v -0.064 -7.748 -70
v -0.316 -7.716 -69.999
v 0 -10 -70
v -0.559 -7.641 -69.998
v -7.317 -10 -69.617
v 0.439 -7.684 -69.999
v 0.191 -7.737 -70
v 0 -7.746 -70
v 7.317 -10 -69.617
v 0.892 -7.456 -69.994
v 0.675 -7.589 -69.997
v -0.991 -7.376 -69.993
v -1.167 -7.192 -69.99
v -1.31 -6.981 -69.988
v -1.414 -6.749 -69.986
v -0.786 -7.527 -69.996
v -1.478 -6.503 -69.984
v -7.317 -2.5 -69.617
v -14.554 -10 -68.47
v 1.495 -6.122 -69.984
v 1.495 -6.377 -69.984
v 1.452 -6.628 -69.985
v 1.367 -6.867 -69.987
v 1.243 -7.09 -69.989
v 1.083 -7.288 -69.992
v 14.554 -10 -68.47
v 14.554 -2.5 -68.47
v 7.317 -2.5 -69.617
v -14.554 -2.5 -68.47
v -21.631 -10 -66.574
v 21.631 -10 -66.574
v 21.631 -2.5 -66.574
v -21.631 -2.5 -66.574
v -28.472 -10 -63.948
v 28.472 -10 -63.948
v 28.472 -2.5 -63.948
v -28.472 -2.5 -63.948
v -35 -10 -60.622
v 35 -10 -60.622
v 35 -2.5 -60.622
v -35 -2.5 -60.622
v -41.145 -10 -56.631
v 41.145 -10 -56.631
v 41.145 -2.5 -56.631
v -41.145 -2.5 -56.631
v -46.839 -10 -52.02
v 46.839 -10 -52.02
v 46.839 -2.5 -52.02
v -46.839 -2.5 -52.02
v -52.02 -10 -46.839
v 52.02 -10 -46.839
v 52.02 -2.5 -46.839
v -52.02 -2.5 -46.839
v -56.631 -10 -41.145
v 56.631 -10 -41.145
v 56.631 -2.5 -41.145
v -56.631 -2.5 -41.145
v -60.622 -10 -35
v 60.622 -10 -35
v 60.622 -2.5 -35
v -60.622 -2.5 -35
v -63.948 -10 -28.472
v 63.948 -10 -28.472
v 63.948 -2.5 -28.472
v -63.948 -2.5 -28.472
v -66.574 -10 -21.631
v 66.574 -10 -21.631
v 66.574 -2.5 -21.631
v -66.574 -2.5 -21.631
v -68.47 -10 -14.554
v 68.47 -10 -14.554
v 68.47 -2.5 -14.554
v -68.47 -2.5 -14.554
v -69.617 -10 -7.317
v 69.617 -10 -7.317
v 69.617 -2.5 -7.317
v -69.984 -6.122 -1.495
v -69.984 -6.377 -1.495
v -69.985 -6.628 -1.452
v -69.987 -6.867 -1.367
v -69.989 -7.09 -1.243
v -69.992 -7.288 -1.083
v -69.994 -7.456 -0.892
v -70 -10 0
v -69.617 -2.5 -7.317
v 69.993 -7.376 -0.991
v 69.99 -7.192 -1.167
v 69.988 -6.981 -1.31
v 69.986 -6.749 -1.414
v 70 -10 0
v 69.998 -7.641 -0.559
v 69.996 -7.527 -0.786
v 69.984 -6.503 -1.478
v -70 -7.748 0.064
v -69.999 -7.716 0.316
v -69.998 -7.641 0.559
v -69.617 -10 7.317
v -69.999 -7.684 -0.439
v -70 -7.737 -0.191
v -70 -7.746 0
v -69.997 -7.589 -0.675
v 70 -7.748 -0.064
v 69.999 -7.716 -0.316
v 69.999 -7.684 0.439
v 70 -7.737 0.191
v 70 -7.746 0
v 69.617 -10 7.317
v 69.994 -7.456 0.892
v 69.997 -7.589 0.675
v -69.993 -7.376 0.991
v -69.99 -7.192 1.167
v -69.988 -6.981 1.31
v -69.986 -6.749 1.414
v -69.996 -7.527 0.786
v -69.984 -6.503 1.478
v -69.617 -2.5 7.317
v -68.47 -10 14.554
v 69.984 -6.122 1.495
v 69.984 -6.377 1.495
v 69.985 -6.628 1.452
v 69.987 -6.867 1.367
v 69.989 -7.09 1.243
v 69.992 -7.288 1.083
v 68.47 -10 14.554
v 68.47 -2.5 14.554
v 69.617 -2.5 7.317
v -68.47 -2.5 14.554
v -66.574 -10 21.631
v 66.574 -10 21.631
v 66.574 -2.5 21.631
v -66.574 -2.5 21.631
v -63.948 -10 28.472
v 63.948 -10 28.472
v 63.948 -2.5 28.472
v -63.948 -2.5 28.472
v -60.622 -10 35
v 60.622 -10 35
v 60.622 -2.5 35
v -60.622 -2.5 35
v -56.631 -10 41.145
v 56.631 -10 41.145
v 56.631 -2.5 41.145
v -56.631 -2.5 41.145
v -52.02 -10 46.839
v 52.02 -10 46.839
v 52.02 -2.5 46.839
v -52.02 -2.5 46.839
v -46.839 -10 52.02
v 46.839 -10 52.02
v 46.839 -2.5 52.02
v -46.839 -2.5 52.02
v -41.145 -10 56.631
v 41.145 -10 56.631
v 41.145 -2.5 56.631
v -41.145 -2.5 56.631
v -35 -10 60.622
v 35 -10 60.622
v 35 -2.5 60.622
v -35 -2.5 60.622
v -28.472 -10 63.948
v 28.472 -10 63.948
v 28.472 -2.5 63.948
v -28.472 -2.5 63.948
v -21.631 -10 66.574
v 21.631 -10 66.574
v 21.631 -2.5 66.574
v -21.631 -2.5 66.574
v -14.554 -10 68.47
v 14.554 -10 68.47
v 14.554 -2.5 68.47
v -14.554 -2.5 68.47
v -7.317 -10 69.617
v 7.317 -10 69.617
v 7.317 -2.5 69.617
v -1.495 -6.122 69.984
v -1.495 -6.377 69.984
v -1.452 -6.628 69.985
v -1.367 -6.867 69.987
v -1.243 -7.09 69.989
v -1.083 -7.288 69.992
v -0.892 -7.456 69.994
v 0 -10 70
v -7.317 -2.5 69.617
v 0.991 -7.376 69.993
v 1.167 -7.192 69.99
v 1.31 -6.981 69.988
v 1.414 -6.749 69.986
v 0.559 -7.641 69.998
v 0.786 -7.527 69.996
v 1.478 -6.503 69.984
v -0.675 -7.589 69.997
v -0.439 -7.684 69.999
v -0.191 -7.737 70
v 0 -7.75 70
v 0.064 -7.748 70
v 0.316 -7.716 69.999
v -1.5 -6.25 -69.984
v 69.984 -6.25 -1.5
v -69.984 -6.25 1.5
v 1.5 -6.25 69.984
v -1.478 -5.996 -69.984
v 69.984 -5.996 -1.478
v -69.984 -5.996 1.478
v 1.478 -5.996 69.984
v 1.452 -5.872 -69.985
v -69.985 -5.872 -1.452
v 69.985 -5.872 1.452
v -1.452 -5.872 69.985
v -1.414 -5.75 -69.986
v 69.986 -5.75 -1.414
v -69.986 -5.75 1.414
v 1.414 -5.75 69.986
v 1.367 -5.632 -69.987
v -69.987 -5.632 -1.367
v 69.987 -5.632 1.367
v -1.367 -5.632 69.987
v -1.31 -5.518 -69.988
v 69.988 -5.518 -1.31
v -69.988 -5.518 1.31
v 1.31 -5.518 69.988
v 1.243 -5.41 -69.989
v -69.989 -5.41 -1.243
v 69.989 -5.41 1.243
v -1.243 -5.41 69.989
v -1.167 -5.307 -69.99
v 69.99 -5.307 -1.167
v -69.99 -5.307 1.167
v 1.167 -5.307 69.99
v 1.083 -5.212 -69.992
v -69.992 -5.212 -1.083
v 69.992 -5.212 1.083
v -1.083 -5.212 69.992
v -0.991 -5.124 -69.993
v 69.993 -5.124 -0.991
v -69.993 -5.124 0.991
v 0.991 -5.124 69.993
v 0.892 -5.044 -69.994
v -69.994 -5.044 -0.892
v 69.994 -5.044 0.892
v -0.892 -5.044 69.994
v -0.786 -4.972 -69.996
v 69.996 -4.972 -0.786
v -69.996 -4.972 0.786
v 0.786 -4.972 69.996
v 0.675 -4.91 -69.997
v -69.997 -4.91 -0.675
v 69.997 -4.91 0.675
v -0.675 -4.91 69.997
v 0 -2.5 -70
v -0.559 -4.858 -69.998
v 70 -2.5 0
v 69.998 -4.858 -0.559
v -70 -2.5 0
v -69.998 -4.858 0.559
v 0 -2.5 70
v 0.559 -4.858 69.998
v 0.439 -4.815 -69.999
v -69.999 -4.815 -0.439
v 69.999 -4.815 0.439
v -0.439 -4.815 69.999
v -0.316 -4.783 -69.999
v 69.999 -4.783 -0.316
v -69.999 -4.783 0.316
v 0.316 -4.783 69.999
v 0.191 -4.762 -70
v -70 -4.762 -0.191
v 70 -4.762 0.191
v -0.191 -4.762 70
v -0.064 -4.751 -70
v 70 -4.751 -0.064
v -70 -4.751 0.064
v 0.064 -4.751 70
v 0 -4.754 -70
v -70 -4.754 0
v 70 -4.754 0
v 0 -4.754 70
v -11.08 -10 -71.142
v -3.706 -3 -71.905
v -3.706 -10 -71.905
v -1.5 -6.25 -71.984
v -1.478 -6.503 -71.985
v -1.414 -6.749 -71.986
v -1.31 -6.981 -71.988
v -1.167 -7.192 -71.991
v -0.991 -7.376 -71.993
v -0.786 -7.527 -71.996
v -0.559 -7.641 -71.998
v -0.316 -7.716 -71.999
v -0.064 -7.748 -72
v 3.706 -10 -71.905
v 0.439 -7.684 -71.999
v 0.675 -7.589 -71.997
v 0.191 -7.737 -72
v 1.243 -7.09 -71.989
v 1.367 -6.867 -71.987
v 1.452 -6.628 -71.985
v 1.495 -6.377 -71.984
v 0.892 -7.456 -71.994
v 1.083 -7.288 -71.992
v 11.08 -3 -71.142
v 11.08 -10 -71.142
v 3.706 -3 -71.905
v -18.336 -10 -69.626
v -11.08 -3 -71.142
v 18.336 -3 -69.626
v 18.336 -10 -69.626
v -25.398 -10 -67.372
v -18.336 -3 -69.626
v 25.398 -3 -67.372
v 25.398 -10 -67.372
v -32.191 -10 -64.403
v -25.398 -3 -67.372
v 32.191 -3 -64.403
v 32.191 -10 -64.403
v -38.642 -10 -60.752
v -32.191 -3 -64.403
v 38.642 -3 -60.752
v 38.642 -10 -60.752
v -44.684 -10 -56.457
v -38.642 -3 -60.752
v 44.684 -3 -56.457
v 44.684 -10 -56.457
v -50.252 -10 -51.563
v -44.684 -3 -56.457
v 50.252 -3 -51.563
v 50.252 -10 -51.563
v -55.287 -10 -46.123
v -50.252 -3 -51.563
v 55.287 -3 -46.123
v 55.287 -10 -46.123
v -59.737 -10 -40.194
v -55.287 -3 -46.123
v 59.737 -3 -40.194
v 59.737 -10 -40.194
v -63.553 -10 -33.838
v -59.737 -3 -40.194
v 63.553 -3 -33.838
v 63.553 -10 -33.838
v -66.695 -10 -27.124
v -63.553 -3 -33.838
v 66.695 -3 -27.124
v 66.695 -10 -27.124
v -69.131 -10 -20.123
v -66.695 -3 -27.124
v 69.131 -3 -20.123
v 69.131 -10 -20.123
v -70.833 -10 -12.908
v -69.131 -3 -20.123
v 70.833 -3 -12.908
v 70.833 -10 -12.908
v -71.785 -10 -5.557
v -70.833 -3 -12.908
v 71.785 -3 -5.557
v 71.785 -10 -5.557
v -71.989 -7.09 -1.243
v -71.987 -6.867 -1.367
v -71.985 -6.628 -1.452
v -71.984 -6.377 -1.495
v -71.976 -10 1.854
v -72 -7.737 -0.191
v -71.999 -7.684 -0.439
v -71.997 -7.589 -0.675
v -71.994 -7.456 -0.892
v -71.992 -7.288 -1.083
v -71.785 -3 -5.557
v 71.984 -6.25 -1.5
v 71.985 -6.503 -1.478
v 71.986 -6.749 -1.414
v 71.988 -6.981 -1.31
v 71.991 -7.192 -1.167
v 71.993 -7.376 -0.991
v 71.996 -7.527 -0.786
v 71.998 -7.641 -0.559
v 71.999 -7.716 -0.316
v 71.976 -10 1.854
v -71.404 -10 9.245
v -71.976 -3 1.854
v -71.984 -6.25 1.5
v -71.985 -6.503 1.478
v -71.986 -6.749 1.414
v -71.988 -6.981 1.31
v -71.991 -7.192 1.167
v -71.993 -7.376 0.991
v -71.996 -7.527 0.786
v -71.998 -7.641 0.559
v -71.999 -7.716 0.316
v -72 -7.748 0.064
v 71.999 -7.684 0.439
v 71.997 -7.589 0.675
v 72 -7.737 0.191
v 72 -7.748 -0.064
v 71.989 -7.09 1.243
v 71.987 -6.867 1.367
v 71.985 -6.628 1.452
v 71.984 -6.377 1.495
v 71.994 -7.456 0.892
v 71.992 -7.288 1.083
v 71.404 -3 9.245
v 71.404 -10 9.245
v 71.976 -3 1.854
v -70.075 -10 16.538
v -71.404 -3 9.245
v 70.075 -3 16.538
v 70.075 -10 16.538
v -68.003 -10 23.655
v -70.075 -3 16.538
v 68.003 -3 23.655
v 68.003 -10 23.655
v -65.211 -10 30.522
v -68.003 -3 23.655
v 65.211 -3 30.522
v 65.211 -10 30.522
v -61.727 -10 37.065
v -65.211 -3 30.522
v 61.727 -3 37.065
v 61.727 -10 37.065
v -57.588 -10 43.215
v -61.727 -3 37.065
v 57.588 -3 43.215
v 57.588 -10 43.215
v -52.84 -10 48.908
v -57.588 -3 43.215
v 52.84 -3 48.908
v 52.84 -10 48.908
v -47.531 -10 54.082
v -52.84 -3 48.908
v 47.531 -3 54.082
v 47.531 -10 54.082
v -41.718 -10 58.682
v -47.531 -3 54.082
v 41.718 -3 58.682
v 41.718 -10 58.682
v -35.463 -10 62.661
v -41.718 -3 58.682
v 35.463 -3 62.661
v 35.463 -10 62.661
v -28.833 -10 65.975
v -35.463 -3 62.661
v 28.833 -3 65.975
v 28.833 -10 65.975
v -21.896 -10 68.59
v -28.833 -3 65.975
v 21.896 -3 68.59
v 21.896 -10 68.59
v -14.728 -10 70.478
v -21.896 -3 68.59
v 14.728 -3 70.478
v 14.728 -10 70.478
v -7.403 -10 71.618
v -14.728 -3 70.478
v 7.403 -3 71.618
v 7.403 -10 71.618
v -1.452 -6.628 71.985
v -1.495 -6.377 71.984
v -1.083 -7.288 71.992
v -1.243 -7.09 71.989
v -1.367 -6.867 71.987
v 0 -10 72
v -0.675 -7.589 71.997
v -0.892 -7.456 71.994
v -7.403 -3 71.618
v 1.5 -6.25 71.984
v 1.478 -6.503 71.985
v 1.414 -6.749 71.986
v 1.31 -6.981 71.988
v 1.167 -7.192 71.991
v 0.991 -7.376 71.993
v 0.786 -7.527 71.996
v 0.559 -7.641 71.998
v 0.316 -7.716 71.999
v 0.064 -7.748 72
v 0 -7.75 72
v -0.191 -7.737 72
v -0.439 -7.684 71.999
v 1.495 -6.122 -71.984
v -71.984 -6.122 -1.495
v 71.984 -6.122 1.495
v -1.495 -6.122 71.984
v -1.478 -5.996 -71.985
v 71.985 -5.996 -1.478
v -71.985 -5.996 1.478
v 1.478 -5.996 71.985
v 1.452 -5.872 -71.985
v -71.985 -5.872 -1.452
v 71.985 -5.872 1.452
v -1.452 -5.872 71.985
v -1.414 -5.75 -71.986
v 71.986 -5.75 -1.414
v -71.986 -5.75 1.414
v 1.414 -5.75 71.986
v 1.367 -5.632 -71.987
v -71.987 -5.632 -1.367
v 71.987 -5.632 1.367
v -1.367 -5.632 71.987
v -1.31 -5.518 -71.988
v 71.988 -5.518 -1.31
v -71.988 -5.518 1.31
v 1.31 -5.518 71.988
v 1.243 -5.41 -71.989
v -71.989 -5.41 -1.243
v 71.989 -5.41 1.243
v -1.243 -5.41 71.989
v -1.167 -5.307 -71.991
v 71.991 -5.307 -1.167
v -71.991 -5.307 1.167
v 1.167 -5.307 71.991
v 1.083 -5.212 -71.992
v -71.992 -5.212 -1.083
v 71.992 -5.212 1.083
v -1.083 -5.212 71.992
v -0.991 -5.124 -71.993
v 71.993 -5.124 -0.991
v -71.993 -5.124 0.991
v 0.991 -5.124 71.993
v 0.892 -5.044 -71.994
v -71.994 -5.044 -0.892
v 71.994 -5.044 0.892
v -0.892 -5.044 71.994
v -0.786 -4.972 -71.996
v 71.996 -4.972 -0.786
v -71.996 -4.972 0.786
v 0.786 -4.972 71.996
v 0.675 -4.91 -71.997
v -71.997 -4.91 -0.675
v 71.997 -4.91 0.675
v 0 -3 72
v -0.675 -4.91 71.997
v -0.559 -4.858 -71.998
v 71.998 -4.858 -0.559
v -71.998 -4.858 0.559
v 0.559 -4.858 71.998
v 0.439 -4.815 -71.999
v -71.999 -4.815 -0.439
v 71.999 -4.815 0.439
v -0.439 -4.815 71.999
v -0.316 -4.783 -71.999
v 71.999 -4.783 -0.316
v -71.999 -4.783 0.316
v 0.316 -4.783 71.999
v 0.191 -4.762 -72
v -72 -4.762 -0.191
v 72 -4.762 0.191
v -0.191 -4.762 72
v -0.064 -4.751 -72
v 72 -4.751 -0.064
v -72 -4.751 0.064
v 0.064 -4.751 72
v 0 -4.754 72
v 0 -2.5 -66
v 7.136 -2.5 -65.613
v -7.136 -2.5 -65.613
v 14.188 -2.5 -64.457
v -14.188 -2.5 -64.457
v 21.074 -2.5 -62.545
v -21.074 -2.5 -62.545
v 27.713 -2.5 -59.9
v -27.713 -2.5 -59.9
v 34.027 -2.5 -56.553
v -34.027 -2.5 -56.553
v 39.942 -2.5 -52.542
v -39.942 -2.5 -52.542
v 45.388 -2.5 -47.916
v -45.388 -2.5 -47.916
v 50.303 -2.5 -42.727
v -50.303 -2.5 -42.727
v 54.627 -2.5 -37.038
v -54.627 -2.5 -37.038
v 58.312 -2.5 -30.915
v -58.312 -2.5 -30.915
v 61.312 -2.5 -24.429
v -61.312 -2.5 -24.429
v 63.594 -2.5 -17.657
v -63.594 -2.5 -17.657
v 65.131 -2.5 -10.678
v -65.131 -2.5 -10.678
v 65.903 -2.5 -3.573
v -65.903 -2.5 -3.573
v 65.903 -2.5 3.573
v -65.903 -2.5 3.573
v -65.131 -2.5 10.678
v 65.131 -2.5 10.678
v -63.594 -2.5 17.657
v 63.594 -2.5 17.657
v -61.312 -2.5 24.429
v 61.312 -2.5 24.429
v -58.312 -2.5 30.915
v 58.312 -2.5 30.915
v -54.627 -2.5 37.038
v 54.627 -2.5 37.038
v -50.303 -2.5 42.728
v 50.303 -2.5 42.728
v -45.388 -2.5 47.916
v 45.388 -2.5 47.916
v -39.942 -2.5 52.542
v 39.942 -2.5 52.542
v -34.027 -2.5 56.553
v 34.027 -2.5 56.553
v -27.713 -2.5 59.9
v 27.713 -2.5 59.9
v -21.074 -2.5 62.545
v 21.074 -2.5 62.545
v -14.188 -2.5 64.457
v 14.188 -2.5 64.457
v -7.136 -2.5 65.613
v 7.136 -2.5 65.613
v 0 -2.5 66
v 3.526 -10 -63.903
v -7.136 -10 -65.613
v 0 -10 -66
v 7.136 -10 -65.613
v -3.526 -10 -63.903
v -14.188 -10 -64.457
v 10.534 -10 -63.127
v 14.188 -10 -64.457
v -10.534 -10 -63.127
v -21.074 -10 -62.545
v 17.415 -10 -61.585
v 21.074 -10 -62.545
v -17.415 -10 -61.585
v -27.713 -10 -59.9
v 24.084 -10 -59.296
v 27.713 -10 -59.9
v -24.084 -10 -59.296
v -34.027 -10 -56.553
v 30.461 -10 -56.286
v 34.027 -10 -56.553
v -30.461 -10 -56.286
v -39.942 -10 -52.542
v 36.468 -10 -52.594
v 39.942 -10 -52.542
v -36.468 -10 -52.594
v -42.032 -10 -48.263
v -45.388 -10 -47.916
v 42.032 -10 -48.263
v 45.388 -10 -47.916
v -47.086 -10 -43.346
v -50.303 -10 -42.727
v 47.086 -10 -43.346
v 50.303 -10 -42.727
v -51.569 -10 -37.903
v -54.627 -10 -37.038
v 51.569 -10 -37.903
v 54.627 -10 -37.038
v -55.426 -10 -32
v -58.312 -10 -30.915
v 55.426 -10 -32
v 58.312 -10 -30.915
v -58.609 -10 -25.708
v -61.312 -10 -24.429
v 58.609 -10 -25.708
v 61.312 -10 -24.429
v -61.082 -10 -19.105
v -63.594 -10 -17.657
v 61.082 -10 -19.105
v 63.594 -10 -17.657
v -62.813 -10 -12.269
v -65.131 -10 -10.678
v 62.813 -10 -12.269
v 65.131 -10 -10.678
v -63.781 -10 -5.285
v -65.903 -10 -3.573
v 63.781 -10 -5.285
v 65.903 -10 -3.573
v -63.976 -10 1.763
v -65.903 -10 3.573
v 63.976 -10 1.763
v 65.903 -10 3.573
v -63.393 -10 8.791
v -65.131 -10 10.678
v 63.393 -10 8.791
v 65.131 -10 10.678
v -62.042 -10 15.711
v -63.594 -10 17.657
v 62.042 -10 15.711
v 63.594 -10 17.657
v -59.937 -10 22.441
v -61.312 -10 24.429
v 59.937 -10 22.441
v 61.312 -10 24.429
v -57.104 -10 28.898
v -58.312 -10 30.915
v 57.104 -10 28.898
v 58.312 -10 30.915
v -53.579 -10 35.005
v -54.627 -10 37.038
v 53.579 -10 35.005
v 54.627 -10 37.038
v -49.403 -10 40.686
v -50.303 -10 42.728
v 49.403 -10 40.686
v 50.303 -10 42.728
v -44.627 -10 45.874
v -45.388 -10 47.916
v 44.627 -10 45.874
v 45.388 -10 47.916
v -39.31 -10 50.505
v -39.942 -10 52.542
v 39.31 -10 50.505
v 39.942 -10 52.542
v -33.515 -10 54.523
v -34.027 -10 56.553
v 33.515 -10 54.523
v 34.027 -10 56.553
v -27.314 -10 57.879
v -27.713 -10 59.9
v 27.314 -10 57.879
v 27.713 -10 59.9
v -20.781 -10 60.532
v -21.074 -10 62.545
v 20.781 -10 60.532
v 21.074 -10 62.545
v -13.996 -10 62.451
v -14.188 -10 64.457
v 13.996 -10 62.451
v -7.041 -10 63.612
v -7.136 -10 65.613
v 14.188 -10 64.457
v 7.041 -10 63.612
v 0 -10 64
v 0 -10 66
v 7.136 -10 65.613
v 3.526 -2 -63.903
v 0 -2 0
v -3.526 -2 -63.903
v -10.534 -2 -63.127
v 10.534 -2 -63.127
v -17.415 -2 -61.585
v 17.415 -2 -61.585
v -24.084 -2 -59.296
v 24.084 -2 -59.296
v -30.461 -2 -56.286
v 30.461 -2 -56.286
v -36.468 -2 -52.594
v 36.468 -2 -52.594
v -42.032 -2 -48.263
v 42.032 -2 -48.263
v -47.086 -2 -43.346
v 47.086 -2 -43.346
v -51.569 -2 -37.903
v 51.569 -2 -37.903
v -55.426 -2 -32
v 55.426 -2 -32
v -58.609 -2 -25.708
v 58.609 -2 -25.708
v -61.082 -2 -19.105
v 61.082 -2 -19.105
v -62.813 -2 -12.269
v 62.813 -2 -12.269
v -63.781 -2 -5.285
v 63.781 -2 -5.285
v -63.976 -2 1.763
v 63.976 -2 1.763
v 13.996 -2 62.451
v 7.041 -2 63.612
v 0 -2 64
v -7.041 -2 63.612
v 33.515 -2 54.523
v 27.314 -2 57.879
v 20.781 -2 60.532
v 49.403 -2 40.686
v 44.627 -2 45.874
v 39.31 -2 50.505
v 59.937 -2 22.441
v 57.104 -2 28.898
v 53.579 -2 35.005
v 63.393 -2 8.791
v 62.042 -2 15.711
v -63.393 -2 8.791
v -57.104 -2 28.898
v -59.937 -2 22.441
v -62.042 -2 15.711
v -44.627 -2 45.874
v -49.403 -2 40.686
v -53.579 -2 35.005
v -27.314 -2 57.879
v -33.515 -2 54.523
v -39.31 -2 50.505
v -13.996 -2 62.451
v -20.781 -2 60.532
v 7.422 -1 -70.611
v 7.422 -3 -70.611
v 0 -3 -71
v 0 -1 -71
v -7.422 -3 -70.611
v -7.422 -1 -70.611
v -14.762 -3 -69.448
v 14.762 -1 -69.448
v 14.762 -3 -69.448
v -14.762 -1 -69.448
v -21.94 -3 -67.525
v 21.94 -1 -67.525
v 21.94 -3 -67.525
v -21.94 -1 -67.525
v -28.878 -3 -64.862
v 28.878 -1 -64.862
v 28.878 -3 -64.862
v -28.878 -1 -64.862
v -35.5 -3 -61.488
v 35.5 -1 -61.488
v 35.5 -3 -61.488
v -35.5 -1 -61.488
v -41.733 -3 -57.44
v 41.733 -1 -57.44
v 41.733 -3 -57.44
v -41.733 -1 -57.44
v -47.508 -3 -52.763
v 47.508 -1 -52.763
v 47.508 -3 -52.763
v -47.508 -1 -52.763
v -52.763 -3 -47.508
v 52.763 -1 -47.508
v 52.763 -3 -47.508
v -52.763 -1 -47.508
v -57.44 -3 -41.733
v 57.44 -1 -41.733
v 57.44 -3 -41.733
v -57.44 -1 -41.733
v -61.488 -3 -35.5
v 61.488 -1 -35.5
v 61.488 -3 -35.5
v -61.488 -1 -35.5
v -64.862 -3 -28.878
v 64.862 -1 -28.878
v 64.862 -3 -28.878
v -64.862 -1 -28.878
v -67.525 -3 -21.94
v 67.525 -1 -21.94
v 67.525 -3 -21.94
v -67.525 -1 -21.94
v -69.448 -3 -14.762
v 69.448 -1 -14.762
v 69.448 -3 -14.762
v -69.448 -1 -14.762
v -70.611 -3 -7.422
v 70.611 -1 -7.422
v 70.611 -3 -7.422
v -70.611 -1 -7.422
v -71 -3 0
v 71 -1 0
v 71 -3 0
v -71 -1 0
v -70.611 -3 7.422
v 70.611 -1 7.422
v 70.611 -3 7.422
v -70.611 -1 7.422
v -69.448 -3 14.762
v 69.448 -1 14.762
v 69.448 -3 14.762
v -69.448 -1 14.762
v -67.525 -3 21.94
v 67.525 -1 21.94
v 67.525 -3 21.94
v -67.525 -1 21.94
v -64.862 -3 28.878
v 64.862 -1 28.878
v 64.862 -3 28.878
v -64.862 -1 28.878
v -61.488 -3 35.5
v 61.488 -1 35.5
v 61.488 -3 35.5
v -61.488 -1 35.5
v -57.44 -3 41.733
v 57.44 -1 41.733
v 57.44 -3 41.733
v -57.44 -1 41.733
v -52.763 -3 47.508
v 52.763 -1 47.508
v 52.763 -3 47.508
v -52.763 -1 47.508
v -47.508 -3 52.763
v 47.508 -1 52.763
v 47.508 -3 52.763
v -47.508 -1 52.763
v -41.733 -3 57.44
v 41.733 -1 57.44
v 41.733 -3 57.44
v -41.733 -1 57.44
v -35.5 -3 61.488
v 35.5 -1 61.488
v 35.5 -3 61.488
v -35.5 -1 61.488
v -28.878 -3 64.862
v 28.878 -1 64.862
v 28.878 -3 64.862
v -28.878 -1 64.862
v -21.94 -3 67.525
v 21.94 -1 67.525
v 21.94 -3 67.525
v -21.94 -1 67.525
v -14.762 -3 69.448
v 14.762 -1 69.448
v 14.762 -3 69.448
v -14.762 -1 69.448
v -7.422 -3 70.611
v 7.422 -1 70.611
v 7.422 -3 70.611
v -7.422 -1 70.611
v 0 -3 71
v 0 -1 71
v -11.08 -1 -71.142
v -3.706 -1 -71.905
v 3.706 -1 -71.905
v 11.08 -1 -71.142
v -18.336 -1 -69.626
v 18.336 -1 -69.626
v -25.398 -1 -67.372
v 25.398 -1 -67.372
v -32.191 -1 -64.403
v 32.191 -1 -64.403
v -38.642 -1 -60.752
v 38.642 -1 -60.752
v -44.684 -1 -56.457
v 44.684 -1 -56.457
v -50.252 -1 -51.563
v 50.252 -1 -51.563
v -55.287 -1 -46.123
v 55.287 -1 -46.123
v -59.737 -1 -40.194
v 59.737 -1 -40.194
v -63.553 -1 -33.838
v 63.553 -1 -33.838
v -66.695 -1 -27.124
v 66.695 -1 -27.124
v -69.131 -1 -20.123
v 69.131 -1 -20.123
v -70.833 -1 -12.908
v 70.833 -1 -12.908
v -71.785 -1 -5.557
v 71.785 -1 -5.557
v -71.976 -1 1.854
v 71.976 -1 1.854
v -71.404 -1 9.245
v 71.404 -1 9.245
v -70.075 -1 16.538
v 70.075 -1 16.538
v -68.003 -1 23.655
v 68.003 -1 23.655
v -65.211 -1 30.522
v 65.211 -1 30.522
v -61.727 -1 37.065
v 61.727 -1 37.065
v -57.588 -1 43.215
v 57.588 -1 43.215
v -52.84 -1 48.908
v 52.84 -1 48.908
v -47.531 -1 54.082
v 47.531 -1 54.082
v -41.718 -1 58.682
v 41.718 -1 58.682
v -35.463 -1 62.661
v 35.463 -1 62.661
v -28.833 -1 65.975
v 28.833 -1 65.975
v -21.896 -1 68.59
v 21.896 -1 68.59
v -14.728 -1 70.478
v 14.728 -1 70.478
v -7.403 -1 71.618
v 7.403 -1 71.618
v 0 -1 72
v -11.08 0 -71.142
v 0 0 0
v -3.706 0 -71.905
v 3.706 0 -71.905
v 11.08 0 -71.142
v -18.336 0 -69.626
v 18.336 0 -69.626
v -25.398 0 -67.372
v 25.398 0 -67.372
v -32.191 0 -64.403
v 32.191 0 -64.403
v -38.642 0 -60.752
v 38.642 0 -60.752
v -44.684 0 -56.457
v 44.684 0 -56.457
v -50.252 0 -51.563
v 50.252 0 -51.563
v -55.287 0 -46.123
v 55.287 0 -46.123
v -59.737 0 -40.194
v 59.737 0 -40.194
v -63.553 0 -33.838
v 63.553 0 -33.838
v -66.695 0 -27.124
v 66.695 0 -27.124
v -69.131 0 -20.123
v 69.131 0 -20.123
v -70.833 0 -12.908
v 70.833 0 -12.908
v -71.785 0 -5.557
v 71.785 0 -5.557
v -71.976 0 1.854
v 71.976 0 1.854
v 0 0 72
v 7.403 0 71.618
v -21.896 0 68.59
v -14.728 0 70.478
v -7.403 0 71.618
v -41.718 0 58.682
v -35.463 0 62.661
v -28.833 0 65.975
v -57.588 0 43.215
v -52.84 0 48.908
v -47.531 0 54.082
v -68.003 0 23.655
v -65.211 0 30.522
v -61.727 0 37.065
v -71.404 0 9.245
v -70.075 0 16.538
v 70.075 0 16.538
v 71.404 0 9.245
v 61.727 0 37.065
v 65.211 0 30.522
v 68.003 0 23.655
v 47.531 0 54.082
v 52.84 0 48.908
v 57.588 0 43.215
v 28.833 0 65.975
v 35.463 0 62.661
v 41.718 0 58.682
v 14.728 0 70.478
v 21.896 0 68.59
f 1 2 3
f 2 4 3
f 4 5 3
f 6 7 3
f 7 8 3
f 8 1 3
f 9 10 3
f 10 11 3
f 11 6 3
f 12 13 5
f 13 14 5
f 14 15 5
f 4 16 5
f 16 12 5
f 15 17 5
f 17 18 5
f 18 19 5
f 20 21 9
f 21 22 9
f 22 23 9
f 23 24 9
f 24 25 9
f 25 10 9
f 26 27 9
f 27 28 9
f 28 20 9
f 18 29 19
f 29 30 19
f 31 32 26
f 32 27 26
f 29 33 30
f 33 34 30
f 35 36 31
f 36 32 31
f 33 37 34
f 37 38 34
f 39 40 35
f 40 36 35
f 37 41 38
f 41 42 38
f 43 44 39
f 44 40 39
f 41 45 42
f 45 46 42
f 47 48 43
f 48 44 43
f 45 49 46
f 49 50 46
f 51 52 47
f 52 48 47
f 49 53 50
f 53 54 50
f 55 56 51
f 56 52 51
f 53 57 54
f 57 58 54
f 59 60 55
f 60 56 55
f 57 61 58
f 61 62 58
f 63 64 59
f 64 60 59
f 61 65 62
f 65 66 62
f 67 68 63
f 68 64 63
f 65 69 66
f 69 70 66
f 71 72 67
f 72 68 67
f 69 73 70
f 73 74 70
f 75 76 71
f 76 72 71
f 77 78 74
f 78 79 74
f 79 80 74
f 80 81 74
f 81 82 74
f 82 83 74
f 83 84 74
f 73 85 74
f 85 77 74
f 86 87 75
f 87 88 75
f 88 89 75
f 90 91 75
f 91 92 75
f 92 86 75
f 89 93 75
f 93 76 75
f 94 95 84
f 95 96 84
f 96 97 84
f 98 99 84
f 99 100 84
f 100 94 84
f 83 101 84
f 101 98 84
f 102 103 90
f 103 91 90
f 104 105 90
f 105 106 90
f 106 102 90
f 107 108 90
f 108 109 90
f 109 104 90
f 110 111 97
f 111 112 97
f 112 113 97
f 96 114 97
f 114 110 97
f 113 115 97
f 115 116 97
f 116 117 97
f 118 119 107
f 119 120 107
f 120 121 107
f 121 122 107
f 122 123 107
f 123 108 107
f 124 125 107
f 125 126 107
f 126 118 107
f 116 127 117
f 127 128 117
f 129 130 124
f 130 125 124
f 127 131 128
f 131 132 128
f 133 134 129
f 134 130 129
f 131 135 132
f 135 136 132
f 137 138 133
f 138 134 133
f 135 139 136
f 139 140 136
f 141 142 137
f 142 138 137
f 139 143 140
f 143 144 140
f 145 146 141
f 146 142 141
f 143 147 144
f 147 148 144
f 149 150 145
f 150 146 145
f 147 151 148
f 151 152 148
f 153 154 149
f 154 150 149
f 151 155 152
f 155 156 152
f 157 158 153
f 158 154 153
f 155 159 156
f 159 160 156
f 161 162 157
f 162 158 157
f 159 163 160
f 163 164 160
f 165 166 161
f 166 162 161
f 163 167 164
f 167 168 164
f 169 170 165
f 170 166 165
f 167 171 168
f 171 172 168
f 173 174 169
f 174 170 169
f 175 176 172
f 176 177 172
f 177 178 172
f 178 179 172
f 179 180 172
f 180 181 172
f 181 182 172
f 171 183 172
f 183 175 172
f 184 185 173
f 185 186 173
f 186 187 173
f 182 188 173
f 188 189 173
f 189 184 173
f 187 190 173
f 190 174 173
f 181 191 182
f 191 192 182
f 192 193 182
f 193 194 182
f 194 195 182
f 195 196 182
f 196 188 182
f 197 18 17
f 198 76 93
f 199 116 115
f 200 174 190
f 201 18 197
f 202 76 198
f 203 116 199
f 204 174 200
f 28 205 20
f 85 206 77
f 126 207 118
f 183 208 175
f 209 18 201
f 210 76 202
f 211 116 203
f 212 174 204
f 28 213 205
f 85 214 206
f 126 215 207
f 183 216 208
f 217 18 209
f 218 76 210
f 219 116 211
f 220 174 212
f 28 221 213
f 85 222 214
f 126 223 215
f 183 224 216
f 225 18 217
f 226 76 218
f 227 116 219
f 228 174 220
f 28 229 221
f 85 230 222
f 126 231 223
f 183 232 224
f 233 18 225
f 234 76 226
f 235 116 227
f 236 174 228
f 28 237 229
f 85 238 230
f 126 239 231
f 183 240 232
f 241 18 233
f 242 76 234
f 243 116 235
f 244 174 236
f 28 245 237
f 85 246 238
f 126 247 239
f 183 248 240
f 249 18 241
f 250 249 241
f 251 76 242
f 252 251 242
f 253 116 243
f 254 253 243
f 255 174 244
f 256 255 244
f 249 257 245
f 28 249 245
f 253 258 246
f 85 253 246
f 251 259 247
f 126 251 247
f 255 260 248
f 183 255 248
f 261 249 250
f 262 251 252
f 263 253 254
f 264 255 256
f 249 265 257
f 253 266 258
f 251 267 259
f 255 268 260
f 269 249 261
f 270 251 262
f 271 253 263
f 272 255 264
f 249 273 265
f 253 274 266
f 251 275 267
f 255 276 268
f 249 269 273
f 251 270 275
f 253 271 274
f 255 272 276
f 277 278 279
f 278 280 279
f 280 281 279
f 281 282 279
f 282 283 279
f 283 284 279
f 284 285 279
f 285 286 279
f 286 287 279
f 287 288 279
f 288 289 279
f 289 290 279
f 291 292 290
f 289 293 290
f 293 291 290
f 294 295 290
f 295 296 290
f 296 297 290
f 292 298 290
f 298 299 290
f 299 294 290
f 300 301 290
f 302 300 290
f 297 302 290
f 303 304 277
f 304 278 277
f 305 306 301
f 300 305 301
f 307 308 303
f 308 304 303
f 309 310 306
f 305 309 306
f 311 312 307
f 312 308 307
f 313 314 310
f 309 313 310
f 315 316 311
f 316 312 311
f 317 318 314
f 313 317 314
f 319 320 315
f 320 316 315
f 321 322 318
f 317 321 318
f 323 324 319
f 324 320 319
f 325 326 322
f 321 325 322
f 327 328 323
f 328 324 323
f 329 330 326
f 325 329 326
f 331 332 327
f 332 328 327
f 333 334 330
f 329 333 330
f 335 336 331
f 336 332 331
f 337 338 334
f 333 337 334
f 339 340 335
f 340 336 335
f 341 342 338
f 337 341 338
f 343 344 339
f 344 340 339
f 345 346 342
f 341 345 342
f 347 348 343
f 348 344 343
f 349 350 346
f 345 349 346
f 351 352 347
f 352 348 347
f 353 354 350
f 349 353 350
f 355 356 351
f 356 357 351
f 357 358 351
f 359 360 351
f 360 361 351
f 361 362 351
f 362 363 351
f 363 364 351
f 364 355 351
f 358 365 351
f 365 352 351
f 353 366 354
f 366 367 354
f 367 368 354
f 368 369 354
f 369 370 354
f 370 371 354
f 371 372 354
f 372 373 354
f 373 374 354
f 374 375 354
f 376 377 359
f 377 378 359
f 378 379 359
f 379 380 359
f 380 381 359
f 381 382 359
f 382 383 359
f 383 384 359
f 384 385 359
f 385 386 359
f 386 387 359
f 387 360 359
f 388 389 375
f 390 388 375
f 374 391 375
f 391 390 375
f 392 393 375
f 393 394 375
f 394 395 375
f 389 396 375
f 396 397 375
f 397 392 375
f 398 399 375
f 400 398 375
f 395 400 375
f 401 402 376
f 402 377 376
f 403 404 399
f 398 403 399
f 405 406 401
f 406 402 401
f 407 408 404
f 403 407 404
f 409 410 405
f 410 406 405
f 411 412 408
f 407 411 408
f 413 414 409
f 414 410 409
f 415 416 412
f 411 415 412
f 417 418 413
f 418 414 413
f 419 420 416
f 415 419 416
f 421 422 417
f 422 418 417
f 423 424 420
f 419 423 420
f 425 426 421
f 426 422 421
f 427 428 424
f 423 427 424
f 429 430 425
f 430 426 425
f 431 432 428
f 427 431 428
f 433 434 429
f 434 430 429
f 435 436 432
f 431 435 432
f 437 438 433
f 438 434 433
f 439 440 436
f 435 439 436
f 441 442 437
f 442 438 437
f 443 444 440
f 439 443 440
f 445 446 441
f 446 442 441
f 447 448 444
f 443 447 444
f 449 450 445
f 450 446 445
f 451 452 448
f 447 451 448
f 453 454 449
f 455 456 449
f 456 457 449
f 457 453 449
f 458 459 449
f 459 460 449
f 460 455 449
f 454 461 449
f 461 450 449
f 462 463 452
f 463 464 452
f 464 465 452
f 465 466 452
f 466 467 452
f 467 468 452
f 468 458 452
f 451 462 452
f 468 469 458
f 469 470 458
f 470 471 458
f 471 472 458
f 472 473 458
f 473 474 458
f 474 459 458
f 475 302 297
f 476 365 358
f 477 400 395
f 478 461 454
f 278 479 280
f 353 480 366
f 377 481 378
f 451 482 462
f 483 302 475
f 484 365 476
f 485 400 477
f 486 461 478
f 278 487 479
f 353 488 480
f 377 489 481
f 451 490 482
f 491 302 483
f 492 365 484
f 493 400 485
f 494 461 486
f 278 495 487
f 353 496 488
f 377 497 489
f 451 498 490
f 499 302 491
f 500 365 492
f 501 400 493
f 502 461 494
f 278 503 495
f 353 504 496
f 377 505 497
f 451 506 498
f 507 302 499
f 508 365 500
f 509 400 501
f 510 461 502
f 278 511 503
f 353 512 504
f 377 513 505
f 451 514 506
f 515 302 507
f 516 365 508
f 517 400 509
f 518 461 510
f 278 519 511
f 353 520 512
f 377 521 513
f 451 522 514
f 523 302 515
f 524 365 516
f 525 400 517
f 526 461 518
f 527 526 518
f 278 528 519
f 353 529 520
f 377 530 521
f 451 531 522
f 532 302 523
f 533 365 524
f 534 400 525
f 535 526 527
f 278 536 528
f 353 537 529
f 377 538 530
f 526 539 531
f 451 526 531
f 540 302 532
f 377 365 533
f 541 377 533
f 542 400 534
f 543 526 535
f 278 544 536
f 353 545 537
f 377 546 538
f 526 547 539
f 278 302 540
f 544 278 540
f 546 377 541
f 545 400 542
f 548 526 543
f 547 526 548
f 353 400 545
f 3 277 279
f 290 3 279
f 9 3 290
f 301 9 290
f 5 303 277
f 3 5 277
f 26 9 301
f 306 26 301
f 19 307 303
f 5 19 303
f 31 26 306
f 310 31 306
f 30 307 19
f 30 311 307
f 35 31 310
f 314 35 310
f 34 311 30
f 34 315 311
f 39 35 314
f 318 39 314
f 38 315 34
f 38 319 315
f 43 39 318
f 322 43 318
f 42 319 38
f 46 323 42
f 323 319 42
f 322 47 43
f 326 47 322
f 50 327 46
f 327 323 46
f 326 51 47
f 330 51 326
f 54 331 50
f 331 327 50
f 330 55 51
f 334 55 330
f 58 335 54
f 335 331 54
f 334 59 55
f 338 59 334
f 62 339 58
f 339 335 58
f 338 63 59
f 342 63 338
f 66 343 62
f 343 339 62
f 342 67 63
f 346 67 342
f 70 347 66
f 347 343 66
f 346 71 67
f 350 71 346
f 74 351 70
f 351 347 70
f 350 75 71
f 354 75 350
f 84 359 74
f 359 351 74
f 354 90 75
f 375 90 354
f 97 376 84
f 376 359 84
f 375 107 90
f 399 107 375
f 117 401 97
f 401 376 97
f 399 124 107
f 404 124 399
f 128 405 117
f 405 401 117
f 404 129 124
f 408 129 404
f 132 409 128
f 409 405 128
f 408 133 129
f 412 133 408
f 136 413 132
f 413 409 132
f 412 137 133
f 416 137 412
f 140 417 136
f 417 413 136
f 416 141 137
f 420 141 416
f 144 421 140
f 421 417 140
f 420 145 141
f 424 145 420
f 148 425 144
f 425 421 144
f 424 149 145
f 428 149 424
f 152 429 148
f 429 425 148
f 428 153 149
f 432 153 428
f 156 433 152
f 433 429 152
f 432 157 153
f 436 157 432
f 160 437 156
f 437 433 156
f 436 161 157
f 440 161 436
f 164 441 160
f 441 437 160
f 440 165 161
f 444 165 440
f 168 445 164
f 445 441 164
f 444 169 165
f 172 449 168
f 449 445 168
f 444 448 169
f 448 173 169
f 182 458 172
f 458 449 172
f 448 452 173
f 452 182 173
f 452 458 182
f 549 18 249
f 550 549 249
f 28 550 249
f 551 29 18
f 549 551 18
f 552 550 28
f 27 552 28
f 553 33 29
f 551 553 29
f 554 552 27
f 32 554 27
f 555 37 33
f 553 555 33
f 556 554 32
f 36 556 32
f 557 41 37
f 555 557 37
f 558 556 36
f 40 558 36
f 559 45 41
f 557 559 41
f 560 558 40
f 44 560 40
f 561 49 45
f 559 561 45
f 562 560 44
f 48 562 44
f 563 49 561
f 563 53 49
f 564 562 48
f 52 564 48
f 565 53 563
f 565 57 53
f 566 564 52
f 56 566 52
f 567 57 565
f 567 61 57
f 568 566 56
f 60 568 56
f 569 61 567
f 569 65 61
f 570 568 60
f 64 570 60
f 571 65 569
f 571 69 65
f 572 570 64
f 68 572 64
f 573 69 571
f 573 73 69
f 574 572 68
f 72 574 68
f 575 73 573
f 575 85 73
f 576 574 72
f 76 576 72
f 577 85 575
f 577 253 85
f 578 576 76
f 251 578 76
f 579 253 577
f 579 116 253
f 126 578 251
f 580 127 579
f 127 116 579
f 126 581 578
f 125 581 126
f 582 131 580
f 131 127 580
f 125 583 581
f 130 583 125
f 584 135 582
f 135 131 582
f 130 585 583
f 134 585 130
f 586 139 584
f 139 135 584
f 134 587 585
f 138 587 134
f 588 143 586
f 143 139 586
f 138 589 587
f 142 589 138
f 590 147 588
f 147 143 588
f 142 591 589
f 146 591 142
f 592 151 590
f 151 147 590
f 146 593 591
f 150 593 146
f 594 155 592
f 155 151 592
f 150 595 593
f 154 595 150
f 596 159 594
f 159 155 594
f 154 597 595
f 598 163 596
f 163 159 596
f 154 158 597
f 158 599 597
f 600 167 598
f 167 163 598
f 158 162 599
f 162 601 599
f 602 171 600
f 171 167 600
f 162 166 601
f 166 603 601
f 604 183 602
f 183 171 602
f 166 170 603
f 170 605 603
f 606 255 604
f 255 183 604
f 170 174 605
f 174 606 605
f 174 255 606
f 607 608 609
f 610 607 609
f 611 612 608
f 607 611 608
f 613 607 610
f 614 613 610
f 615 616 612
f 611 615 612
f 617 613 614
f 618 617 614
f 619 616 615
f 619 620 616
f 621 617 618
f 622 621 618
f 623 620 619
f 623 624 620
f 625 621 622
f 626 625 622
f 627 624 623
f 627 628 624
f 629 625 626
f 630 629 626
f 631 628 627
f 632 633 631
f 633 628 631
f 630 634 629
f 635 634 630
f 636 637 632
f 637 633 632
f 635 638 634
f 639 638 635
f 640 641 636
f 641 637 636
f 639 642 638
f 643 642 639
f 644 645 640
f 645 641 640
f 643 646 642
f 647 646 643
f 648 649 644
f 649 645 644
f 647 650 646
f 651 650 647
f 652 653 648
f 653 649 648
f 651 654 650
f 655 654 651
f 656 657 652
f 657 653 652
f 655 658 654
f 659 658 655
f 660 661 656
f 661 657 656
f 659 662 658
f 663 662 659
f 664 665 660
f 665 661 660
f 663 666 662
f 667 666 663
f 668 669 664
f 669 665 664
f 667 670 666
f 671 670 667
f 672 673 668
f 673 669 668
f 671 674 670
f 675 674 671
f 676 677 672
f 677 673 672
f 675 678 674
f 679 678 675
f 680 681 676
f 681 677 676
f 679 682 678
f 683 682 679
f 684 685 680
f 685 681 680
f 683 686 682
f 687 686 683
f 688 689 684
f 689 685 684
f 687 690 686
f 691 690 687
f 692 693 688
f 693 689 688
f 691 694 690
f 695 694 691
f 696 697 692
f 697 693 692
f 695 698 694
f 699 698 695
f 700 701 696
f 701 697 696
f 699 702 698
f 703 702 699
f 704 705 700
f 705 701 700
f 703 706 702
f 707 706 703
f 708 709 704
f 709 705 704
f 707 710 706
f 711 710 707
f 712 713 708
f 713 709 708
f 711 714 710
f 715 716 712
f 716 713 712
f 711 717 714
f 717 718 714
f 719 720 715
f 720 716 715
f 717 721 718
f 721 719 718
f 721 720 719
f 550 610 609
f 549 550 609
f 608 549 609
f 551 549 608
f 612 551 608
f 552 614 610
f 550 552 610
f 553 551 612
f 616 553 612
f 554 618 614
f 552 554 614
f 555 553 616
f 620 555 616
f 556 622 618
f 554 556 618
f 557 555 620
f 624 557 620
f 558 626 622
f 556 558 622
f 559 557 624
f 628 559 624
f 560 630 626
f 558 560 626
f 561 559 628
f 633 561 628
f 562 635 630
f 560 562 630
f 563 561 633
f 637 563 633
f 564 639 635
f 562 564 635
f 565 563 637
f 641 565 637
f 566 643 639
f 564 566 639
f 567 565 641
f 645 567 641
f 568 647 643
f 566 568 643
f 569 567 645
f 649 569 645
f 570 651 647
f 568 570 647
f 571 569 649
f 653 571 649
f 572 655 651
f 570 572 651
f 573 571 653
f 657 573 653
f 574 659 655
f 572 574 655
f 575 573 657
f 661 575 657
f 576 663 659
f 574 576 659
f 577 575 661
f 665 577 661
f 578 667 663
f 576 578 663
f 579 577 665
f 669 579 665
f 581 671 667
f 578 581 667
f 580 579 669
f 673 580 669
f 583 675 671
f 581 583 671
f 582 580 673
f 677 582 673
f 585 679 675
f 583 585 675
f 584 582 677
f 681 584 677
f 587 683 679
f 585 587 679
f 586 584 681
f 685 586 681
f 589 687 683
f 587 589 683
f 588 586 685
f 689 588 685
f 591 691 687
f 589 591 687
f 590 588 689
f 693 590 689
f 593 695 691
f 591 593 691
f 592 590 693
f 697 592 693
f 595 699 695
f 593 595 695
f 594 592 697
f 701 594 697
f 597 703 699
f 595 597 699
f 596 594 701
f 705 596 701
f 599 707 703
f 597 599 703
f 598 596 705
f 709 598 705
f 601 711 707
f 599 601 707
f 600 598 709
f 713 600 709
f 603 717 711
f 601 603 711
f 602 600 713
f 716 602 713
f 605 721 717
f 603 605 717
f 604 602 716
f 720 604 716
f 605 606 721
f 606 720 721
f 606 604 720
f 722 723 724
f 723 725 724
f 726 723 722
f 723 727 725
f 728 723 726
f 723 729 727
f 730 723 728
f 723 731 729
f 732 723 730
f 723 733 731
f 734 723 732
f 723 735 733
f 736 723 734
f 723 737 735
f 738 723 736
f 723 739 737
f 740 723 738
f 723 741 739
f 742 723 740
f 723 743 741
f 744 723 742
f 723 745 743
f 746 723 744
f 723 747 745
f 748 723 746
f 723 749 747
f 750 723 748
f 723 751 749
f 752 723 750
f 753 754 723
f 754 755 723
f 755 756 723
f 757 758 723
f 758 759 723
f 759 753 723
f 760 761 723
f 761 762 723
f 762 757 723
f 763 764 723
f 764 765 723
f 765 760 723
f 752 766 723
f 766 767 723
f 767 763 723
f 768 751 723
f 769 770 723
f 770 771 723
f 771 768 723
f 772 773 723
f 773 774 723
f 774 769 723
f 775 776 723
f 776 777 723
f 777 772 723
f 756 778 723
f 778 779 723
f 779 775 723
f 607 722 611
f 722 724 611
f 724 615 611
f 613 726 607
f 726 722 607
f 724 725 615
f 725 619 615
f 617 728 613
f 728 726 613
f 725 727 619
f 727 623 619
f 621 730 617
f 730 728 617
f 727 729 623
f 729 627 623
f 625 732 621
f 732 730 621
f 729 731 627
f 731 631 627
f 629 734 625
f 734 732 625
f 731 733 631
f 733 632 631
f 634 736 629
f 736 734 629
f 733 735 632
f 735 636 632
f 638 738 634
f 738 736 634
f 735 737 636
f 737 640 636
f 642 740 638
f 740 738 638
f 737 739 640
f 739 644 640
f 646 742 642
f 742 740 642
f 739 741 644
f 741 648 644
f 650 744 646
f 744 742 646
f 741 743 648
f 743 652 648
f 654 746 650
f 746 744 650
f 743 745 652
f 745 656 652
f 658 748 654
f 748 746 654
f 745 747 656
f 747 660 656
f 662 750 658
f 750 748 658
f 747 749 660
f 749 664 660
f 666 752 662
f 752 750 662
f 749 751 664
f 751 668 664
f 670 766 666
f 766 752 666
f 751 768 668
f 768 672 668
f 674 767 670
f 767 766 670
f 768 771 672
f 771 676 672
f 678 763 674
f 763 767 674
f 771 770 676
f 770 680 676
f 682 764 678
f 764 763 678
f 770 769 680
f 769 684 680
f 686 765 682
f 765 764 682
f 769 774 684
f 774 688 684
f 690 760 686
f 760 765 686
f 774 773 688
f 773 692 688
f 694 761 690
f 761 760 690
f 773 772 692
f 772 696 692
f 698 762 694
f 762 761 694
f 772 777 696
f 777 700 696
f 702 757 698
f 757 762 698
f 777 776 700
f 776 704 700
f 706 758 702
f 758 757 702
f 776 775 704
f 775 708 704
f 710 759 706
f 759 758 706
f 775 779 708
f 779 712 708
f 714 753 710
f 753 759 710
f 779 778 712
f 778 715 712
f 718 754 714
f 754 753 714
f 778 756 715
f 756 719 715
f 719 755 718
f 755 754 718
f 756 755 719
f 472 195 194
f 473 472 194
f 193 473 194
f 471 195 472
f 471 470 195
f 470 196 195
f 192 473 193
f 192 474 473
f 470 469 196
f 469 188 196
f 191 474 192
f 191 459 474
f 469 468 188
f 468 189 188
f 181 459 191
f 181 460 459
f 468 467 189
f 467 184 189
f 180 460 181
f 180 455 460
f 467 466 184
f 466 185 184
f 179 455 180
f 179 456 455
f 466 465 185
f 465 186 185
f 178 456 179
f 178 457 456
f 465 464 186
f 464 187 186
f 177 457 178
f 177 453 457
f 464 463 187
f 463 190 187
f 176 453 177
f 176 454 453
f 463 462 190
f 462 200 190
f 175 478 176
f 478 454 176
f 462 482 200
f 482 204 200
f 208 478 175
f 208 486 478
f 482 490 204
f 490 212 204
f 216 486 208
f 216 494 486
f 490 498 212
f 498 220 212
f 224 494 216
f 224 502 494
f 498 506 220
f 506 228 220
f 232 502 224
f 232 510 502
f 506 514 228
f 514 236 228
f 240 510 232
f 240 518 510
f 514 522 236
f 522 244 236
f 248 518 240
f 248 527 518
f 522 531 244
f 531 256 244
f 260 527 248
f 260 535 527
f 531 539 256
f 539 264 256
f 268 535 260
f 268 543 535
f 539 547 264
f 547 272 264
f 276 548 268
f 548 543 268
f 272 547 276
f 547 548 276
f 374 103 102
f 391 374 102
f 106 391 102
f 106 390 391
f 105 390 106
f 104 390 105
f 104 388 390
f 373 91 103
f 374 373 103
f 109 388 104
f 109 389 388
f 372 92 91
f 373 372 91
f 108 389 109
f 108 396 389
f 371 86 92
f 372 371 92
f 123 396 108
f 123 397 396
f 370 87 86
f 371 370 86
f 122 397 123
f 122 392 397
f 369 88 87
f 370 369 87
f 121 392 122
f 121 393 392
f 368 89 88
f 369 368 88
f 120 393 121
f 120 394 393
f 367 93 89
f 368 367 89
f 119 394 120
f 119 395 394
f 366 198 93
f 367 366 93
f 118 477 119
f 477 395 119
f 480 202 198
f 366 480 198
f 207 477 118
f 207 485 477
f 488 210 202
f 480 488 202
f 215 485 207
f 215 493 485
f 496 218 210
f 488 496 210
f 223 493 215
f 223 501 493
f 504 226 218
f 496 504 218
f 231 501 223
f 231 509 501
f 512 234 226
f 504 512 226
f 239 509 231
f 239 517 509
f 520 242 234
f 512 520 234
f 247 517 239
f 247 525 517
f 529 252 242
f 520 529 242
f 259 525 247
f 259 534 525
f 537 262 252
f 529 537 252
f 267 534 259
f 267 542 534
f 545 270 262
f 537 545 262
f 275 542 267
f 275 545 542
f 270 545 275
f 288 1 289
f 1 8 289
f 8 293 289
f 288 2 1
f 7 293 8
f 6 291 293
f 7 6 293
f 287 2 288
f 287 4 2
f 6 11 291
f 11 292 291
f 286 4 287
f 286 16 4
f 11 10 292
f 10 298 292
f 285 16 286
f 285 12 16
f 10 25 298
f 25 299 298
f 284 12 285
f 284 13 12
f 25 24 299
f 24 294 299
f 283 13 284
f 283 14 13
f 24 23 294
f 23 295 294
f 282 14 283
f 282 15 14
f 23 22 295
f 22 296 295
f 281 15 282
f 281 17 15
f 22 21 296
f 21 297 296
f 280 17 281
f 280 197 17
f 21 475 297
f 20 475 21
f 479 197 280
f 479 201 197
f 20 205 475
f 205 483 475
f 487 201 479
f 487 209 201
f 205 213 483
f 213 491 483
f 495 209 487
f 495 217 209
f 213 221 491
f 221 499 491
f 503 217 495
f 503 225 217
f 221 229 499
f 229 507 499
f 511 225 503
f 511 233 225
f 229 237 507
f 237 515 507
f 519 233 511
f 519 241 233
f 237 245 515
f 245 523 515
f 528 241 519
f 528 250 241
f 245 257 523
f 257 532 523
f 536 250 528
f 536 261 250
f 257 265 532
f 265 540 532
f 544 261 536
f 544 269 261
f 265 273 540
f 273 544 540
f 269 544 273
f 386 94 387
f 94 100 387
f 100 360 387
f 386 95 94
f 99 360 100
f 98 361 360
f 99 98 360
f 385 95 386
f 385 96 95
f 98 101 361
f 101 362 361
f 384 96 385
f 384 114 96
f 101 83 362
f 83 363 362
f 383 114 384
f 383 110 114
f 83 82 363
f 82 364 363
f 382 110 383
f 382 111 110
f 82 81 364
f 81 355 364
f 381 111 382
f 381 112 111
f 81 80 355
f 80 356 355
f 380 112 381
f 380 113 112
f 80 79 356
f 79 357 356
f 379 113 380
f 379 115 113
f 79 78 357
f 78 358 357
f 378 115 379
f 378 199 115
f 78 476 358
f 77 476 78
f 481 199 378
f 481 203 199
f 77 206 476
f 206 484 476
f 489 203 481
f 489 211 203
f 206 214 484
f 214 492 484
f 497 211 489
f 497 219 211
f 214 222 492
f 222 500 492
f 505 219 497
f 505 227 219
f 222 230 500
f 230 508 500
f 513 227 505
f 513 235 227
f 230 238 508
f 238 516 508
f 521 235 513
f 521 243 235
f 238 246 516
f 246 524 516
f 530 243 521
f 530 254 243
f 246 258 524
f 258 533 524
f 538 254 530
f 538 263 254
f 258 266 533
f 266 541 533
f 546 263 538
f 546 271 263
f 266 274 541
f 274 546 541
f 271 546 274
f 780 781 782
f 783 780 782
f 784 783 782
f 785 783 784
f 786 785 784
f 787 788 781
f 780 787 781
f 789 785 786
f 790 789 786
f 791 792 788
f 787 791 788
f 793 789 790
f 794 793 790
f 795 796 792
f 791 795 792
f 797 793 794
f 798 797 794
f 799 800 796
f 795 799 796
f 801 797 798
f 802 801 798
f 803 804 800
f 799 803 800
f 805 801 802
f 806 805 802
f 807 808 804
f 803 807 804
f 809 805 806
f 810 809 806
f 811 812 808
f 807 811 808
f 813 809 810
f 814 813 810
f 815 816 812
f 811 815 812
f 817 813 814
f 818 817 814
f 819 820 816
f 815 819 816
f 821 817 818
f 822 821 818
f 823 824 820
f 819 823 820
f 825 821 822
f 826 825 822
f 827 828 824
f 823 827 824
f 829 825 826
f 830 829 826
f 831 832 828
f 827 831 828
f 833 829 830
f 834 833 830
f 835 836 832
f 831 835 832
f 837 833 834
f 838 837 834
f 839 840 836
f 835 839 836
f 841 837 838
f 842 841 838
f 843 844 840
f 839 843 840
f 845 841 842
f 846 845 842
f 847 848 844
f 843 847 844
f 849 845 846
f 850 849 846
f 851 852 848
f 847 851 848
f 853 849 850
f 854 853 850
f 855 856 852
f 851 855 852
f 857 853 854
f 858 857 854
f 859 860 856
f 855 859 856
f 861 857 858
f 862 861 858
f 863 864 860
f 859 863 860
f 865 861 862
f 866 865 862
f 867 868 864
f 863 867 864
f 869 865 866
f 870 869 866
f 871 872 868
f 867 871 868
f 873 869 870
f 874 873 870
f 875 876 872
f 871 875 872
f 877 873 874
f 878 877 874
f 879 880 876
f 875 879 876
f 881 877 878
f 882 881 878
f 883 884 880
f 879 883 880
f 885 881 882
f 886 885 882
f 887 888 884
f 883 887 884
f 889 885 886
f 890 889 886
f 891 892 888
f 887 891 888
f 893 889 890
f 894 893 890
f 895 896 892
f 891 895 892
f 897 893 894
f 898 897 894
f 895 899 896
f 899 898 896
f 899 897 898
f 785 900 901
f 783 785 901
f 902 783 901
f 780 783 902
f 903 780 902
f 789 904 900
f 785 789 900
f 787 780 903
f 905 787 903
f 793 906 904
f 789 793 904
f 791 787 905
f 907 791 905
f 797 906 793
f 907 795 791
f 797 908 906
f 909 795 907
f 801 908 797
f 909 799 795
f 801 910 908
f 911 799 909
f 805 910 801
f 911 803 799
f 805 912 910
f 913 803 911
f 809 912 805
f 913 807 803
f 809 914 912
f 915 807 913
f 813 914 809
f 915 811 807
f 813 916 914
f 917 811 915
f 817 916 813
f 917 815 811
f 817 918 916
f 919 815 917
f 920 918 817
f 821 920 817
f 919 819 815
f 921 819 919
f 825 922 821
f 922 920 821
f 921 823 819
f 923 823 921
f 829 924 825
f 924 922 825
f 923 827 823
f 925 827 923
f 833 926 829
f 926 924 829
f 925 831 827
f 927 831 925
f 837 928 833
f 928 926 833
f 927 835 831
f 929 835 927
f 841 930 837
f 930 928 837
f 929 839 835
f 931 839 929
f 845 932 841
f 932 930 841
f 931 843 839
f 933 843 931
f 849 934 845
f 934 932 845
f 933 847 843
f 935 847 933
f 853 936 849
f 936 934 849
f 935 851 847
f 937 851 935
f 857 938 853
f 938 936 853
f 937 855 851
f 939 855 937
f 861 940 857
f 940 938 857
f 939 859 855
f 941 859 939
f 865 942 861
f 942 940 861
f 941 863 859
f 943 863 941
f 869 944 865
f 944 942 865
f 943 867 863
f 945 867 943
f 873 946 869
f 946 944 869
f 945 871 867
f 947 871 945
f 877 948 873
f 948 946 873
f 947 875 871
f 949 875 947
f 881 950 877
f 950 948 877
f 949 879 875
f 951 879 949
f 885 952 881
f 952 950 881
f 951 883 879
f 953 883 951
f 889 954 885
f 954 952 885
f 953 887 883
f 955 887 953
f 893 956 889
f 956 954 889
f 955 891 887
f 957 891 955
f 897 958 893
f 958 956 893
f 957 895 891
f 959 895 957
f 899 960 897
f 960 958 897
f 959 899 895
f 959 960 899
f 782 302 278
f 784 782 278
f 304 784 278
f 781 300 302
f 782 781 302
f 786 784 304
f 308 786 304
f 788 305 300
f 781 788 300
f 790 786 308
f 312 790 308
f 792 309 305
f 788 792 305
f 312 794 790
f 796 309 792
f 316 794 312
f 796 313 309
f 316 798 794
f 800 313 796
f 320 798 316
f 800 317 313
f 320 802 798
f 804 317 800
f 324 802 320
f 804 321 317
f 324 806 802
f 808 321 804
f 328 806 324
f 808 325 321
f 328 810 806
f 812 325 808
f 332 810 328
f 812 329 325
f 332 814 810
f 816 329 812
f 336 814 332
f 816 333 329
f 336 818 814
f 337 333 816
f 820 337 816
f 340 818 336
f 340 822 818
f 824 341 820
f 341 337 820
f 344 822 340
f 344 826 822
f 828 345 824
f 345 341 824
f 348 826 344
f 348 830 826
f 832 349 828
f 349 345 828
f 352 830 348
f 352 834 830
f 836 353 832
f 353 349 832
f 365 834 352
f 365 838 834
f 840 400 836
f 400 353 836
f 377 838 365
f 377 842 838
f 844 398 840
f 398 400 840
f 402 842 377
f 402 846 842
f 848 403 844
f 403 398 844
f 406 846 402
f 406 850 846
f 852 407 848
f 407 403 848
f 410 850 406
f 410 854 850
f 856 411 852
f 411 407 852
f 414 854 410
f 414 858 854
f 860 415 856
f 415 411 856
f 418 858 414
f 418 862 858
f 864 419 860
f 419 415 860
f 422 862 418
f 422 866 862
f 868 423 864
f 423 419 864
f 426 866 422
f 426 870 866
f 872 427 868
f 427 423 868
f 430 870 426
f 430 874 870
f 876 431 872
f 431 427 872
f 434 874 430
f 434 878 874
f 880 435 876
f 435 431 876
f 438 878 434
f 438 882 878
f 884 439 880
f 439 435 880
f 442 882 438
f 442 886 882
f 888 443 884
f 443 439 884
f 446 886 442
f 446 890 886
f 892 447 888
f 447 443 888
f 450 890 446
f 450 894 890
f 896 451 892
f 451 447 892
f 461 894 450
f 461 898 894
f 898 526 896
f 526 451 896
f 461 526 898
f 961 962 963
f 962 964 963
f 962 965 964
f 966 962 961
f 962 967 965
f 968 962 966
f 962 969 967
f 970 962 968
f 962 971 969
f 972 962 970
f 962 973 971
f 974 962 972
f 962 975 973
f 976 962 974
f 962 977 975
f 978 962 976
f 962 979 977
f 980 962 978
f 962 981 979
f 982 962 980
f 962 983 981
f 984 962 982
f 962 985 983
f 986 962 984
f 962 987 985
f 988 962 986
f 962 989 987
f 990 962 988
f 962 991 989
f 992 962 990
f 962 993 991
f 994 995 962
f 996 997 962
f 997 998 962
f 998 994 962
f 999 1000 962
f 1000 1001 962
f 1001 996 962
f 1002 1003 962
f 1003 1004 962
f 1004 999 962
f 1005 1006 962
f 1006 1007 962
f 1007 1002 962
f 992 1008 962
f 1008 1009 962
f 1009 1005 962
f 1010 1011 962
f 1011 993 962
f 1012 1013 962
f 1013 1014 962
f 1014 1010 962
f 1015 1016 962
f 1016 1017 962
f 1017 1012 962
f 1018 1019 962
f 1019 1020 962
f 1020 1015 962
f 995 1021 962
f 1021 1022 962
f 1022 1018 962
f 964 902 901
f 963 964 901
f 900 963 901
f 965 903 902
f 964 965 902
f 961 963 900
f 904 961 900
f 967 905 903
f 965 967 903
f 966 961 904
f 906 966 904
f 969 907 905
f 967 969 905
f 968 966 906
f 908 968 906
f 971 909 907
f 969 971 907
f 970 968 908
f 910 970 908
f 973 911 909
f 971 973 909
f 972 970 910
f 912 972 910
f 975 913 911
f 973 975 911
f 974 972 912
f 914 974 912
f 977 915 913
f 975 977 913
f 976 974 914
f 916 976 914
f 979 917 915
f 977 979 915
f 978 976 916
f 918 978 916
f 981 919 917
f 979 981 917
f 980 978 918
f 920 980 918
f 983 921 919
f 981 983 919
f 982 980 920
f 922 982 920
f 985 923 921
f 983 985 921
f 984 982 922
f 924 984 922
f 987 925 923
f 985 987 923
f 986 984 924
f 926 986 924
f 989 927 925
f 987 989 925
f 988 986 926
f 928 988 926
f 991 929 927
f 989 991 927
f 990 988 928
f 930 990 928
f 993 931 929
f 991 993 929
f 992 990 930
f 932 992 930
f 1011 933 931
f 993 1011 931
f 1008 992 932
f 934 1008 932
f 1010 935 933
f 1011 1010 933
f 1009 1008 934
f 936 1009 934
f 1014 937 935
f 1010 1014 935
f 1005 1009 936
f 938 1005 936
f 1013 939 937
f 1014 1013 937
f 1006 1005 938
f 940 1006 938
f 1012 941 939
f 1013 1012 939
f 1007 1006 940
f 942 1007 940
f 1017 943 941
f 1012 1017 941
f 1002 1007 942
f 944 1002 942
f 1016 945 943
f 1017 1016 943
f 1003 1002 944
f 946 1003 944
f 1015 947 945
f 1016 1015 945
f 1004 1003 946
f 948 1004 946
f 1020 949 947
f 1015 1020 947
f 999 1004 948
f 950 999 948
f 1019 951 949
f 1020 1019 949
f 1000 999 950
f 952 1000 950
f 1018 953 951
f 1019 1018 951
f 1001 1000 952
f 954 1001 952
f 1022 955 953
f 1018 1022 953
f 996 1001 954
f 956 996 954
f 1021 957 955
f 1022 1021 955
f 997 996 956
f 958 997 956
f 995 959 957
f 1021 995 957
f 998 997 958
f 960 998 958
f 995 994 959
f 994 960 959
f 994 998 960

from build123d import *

# Parameters (mm, degrees)
SKETCH_9_R               = 72
SKETCH_9_R_2             = 70
EXTRUDE_9_DEPTH          = 10
SKETCH_9_18_R            = 70
SKETCH_9_18_R_2          = 66
EXTRUDE_10_DEPTH         = 2.5
SKETCH_9_19_R            = 66
EXTRUDE_11_DEPTH         = 10
SHELL_START              = -10
SHELL_2_OUTLINE_R        = 64
SHELL_2_DEPTH            = 8
F_3_0MM_1_REACH          = 163.118
F_3_0MM_1_BORE_R         = 1.5
PATTERN_CIRCULAR_1_COUNT = 4
SKETCH_15_W              = 1
SKETCH_15_H              = 2


# Read off the part's stored shape, not the designer's step: 薄殼2
with BuildPart() as part:
    # 草圖9 → 填料-伸長9 (new body)
    with BuildSketch(Plane(origin=(0, 0, 0), x_dir=(1, 0, 0), z_dir=(0, 1, 0))):
        with Locations(Location((0, 0, 0), (0, 0, 270))):
            Circle(SKETCH_9_R)
        with Locations(Location((0, 0, 0), (0, 0, 270))):
            Circle(SKETCH_9_R_2, mode=Mode.SUBTRACT)
    extrude(amount=-EXTRUDE_9_DEPTH)

    # 草圖9<18> → 填料-伸長10 (add)
    with BuildSketch(Plane(origin=(0, 0, 0), x_dir=(1, 0, 0), z_dir=(0, 1, 0))):
        with Locations(Location((0, 0, 0), (0, 0, 270))):
            Circle(SKETCH_9_18_R)
        with Locations(Location((0, 0, 0), (0, 0, 270))):
            Circle(SKETCH_9_18_R_2, mode=Mode.SUBTRACT)
    extrude(amount=-EXTRUDE_10_DEPTH)

    # 草圖9<19> → 填料-伸長11 (add)
    with BuildSketch(Plane(origin=(0, 0, 0), x_dir=(1, 0, 0), z_dir=(0, 1, 0))):
        with Locations(Location((0, 0, 0), (0, 0, 270))):
            Circle(SKETCH_9_19_R)
    extrude(amount=-EXTRUDE_11_DEPTH)

    # 薄殼2 outline → 薄殼2 (cut)
    with BuildSketch(Plane(origin=(0, 0, 0), x_dir=(1, 0, 0), z_dir=(0, 1, 0)).offset(SHELL_START)):
        Circle(SHELL_2_OUTLINE_R)
    extrude(amount=SHELL_2_DEPTH, mode=Mode.SUBTRACT)

    # Ø3.0mm 定位孔1 bore (on position points) → Ø3.0mm 定位孔1 (cut, up to next)
    with BuildSketch(Plane(origin=(0, -6.25, 72), x_dir=(1, 0, 0), z_dir=(0, 0, 1)), mode=Mode.PRIVATE) as f_3_0mm_1_sk1:
        Circle(F_3_0MM_1_BORE_R)
    f_3_0mm_1_tool1 = extrude(f_3_0mm_1_sk1.sketch, amount=-F_3_0MM_1_REACH, mode=Mode.PRIVATE) & part.part
    f_3_0mm_1 = f_3_0mm_1_tool1.solids().sort_by_distance((0, -6.25, 72))[0]
    add(f_3_0mm_1, mode=Mode.SUBTRACT)

    # 環狀複製排列1: Ø3.0mm 定位孔1 ×4 about axis
    pattern_circular_1_axis = Axis((0, -10, 0), (0, 1, 0))
    for i in range(1, PATTERN_CIRCULAR_1_COUNT):
        add(f_3_0mm_1.rotate(pattern_circular_1_axis, i * 360 / PATTERN_CIRCULAR_1_COUNT), mode=Mode.SUBTRACT)

    # 草圖15 → 除料-旋轉2 (revolve, cut)
    with BuildSketch(Plane(origin=(0, 0, 0), x_dir=(0, 0, -1), z_dir=(1, 0, 0))):
        with Locations((-71.5, -2)):
            Rectangle(SKETCH_15_W, SKETCH_15_H)
    revolve(axis=Axis((0, 0, 0), (0, -1, 0)), mode=Mode.SUBTRACT)


solid = part.part
